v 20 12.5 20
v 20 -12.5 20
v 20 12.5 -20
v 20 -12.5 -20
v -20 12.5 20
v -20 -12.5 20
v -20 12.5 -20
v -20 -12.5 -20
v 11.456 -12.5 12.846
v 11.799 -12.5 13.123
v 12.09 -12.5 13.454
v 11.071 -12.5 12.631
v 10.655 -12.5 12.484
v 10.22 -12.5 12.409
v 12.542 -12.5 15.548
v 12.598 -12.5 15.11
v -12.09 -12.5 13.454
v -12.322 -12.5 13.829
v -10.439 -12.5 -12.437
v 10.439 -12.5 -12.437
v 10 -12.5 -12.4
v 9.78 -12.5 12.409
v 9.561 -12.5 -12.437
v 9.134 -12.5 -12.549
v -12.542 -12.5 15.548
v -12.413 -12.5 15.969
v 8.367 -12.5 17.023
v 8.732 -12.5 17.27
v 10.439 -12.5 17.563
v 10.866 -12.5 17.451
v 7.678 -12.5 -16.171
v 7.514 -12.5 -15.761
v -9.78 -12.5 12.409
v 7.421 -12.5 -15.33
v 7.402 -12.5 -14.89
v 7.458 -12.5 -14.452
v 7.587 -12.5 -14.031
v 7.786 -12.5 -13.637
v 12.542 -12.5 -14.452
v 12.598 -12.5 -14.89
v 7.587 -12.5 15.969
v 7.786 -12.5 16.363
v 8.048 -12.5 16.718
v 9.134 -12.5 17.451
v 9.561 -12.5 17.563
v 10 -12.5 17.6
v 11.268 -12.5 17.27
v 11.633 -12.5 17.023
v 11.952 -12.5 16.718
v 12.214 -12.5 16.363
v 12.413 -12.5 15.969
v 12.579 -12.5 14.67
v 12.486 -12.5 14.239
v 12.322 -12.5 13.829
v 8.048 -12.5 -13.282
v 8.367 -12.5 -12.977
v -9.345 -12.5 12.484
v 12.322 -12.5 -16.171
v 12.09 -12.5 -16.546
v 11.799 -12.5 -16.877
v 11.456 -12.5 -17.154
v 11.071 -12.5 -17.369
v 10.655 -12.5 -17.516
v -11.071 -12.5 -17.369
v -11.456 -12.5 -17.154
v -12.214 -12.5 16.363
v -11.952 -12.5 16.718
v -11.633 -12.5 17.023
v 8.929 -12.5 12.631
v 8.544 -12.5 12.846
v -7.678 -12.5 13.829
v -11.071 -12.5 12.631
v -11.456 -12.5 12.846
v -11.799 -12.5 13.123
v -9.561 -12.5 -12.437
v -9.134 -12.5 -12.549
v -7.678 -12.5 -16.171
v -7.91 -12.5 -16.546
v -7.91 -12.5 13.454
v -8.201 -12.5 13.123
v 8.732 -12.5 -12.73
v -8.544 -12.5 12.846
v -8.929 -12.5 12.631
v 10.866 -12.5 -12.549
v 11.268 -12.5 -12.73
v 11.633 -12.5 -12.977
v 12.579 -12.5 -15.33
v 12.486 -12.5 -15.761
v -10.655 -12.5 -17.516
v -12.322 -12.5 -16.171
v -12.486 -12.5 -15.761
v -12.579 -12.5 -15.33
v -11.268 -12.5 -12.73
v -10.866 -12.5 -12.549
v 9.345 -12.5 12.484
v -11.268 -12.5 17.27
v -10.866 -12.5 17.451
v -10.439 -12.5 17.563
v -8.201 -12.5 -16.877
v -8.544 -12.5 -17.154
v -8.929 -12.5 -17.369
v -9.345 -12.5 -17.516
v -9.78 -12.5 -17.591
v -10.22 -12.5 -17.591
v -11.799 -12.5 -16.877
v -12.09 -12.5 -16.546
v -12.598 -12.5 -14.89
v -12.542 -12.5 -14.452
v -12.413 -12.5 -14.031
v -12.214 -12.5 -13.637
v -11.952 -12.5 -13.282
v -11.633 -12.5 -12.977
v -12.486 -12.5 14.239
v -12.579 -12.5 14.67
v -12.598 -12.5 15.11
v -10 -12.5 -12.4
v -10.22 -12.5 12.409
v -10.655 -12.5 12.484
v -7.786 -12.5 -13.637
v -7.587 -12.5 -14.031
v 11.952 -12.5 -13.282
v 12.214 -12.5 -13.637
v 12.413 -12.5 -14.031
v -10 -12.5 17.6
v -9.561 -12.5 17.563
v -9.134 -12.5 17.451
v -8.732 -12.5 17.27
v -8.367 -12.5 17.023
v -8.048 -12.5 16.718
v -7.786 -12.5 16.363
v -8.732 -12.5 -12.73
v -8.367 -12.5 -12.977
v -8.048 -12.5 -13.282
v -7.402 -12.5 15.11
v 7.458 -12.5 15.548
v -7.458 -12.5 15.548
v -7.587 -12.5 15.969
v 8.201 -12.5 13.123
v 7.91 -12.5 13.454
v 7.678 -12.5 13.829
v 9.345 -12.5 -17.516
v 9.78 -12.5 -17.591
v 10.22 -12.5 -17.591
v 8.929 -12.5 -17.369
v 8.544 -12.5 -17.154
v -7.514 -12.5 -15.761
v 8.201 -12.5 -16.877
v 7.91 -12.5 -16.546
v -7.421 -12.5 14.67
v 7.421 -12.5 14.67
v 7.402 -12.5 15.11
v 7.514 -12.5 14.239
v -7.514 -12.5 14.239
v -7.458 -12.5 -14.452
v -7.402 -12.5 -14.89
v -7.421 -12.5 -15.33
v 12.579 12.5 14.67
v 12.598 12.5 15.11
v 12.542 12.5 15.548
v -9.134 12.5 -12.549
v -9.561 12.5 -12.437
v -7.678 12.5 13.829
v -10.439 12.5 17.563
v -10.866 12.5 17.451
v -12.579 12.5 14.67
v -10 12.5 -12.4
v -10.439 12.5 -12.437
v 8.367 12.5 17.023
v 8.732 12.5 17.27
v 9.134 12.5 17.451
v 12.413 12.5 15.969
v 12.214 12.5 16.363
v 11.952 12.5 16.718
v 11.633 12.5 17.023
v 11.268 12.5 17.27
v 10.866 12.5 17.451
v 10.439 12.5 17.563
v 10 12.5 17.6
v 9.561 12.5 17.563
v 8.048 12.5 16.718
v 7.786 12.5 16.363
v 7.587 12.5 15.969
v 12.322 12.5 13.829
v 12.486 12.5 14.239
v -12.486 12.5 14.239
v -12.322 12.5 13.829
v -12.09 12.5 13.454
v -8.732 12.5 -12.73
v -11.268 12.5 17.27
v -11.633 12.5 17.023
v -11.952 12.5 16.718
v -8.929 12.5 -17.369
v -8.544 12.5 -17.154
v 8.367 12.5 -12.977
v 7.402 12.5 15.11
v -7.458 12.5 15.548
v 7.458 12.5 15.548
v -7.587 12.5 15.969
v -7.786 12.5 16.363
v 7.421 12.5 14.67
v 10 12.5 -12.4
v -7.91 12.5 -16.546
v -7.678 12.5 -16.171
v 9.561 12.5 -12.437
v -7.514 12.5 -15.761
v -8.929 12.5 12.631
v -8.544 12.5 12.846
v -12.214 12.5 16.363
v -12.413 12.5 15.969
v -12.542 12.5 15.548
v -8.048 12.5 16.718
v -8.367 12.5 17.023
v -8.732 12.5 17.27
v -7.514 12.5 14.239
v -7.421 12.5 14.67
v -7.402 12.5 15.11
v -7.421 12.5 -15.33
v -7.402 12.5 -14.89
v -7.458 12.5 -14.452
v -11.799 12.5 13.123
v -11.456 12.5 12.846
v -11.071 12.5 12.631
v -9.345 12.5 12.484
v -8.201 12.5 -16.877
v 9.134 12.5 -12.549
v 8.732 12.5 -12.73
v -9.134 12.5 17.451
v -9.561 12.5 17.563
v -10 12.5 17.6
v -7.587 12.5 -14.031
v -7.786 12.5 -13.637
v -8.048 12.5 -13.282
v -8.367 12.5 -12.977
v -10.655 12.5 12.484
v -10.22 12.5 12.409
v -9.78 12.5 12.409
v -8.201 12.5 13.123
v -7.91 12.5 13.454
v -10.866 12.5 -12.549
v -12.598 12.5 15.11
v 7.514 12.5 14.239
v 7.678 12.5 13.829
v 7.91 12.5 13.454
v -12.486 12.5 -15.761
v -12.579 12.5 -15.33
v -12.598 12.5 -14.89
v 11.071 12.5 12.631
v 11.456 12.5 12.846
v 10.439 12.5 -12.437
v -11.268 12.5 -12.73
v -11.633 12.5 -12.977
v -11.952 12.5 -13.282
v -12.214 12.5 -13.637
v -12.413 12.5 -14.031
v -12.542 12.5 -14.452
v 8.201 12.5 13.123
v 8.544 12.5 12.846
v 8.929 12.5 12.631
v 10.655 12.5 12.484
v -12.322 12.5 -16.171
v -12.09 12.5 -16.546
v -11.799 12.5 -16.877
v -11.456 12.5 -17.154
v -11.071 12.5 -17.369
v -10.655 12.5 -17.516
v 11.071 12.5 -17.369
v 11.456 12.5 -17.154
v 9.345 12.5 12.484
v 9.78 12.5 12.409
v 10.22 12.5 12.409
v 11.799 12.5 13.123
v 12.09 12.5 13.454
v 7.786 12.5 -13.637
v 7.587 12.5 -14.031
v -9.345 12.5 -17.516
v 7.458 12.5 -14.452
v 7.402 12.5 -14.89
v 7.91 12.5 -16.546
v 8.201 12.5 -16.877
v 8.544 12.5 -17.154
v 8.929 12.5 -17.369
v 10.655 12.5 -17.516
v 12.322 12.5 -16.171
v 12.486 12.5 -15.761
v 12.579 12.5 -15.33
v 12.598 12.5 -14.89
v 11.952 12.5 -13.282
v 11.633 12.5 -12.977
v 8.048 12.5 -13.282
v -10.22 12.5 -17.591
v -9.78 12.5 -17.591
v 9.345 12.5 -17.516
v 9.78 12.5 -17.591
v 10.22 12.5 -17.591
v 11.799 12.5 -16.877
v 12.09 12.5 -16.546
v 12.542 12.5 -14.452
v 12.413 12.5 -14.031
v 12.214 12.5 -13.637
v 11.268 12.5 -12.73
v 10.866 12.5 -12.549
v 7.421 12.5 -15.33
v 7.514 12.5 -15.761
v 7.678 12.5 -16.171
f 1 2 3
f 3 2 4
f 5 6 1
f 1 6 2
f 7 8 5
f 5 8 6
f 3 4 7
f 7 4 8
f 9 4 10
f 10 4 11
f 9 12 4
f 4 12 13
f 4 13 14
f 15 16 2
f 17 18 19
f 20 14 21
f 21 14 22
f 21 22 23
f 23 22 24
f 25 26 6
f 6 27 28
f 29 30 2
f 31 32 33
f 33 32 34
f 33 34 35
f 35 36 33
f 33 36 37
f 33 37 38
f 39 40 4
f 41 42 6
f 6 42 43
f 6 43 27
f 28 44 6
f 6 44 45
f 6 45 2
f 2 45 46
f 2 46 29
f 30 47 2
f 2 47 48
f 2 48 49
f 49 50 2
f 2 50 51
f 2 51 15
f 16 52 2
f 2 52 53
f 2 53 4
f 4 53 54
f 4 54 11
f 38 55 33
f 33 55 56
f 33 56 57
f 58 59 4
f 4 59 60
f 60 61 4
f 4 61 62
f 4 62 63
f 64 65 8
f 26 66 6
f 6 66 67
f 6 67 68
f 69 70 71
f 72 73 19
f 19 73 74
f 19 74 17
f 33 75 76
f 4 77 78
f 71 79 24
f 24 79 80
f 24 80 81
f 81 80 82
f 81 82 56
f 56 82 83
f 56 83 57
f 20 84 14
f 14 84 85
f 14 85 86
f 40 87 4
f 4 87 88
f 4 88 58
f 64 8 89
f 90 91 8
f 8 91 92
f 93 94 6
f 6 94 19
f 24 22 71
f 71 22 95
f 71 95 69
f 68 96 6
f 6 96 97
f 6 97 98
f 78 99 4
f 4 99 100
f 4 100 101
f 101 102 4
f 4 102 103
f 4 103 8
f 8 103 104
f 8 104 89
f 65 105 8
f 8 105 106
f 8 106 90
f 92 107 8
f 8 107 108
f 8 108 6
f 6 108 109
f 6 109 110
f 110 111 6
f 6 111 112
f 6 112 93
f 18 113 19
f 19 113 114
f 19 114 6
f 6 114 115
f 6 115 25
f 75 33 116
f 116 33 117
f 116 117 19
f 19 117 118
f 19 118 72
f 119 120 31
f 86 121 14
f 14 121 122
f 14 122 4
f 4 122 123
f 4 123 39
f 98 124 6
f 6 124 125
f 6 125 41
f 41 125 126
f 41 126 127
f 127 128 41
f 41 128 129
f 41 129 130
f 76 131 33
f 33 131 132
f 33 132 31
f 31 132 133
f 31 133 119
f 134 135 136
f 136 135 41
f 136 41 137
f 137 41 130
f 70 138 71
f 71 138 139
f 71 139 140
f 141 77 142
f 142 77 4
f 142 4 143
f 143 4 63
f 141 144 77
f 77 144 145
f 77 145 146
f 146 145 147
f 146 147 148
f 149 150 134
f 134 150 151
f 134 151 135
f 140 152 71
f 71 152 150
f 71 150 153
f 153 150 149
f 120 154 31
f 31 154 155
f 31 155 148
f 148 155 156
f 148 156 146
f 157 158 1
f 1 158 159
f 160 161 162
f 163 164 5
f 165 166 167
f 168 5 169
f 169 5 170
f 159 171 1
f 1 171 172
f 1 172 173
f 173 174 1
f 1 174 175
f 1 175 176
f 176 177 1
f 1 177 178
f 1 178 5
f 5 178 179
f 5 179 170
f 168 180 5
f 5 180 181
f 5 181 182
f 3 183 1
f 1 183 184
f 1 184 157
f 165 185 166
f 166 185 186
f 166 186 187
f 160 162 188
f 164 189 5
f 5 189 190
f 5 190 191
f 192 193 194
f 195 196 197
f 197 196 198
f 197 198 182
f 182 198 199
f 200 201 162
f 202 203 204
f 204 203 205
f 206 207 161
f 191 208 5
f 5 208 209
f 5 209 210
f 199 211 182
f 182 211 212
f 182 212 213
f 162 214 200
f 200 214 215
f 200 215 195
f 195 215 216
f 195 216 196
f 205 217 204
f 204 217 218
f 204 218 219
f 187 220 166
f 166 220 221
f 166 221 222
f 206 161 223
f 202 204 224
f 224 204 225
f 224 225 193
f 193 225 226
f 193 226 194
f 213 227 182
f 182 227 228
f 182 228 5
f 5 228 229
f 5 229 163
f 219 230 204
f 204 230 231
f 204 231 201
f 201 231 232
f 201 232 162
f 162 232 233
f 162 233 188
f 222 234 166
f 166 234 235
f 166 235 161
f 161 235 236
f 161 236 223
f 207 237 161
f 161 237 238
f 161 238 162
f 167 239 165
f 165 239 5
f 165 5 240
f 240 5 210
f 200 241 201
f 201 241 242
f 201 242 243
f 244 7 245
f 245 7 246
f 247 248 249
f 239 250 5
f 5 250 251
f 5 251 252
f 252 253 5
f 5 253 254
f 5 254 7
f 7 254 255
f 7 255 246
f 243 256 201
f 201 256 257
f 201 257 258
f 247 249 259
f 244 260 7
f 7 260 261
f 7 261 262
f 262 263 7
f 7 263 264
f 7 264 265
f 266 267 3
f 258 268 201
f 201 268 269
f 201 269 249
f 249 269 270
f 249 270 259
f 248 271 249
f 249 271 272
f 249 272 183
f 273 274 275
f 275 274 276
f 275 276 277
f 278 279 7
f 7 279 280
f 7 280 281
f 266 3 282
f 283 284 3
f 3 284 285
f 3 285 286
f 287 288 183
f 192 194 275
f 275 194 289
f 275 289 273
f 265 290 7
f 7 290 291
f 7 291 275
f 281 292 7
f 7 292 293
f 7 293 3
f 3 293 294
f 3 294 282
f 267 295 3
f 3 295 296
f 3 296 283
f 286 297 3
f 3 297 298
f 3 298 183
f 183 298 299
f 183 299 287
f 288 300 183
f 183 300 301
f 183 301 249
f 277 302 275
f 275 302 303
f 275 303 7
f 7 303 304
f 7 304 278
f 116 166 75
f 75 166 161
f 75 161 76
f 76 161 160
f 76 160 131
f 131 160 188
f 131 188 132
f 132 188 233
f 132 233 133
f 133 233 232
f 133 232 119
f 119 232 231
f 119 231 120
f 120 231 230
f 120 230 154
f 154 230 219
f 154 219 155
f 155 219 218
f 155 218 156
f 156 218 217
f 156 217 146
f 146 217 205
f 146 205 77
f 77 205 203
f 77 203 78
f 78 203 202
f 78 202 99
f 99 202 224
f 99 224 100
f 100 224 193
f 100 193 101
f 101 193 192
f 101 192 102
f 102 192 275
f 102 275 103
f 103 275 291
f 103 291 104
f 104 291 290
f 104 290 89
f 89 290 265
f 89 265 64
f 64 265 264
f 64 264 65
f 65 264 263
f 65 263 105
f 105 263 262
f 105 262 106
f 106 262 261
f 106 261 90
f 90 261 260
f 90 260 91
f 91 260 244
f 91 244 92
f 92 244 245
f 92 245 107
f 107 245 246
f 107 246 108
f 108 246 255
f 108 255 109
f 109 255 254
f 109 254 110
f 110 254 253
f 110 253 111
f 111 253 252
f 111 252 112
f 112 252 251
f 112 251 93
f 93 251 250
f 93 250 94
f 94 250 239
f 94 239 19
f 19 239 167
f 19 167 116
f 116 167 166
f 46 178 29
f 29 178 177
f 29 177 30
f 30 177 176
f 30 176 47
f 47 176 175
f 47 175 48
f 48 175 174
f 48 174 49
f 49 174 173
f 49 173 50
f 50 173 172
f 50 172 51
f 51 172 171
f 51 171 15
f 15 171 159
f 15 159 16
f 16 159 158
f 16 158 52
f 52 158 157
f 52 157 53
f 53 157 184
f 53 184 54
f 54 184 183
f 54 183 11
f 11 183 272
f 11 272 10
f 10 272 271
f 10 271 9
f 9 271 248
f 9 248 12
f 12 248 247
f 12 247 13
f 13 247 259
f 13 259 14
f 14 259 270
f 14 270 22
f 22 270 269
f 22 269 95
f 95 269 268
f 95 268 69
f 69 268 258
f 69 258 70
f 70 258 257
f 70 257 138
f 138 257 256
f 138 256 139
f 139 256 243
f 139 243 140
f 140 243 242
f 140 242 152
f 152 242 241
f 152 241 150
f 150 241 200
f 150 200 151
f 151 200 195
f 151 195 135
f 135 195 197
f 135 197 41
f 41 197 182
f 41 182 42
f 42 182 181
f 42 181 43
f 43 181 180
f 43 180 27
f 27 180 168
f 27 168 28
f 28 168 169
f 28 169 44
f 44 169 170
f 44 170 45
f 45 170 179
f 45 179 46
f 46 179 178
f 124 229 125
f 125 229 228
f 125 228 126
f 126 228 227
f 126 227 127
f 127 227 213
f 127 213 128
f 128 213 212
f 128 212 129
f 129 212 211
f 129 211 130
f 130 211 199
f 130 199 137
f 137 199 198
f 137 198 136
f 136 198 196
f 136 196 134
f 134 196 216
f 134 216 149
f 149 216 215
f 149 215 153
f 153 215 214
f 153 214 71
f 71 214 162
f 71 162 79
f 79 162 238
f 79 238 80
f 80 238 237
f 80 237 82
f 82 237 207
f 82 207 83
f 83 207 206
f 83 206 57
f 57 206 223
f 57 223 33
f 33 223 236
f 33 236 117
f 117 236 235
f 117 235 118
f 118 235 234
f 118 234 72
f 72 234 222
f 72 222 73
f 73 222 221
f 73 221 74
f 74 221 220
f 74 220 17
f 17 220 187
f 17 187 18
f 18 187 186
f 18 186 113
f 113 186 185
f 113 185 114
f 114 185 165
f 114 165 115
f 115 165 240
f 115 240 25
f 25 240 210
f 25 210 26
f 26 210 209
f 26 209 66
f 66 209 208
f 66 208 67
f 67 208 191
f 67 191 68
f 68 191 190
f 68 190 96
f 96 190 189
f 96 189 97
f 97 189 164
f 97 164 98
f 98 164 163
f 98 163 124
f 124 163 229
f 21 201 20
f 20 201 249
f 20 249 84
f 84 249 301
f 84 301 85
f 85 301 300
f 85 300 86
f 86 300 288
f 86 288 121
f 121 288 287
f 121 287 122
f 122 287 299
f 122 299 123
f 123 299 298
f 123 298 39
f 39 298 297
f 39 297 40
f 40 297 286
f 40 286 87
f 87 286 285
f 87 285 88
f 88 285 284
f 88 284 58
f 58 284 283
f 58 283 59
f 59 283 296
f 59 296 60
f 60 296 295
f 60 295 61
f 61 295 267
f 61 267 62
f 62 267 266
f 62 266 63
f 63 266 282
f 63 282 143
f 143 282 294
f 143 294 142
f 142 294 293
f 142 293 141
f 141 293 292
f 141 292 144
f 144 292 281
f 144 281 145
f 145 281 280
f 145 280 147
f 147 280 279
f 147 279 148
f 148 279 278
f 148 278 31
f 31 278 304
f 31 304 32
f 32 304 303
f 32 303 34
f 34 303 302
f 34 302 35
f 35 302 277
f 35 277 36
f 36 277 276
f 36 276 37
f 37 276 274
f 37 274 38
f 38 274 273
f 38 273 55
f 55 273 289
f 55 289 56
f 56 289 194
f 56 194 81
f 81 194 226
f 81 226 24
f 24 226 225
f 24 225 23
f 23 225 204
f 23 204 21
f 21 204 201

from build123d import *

# Parameters (mm, degrees)
EXTRUDE_1_DEPTH      = 12.5
EXTRUDE_1_DEPTH_BACK = 12.5
SKETCH_1_W           = 40
SKETCH_1_H           = 40
SKETCH_2_R           = 2.6
CUT_EXTRUDE_3_DEPTH  = 38.749172176


with BuildPart() as part:
    # 草图1 → 凸台-拉伸1 (new, two sides: drawn at the far end of the back side and taken through both)
    with BuildSketch(Plane(origin=(0, 0, 0), x_dir=(1, 0, 0), z_dir=(0, 1, 0)).offset(-EXTRUDE_1_DEPTH_BACK)):
        Rectangle(SKETCH_1_W, SKETCH_1_H)
    extrude(amount=EXTRUDE_1_DEPTH + EXTRUDE_1_DEPTH_BACK)

    # 草图2 → 切除-拉伸3 (cut, through all)
    with BuildSketch(Plane(origin=(0, 12.5, 0), x_dir=(1, 0, 0), z_dir=(0, 1, 0))):
        with Locations((-10, 15)):
            Circle(SKETCH_2_R)
        with Locations((10, 15)):
            Circle(SKETCH_2_R)
        with Locations((-10, -15)):
            Circle(SKETCH_2_R)
        with Locations((10, -15)):
            Circle(SKETCH_2_R)
    extrude(amount=-CUT_EXTRUDE_3_DEPTH, mode=Mode.SUBTRACT)


solid = part.part
